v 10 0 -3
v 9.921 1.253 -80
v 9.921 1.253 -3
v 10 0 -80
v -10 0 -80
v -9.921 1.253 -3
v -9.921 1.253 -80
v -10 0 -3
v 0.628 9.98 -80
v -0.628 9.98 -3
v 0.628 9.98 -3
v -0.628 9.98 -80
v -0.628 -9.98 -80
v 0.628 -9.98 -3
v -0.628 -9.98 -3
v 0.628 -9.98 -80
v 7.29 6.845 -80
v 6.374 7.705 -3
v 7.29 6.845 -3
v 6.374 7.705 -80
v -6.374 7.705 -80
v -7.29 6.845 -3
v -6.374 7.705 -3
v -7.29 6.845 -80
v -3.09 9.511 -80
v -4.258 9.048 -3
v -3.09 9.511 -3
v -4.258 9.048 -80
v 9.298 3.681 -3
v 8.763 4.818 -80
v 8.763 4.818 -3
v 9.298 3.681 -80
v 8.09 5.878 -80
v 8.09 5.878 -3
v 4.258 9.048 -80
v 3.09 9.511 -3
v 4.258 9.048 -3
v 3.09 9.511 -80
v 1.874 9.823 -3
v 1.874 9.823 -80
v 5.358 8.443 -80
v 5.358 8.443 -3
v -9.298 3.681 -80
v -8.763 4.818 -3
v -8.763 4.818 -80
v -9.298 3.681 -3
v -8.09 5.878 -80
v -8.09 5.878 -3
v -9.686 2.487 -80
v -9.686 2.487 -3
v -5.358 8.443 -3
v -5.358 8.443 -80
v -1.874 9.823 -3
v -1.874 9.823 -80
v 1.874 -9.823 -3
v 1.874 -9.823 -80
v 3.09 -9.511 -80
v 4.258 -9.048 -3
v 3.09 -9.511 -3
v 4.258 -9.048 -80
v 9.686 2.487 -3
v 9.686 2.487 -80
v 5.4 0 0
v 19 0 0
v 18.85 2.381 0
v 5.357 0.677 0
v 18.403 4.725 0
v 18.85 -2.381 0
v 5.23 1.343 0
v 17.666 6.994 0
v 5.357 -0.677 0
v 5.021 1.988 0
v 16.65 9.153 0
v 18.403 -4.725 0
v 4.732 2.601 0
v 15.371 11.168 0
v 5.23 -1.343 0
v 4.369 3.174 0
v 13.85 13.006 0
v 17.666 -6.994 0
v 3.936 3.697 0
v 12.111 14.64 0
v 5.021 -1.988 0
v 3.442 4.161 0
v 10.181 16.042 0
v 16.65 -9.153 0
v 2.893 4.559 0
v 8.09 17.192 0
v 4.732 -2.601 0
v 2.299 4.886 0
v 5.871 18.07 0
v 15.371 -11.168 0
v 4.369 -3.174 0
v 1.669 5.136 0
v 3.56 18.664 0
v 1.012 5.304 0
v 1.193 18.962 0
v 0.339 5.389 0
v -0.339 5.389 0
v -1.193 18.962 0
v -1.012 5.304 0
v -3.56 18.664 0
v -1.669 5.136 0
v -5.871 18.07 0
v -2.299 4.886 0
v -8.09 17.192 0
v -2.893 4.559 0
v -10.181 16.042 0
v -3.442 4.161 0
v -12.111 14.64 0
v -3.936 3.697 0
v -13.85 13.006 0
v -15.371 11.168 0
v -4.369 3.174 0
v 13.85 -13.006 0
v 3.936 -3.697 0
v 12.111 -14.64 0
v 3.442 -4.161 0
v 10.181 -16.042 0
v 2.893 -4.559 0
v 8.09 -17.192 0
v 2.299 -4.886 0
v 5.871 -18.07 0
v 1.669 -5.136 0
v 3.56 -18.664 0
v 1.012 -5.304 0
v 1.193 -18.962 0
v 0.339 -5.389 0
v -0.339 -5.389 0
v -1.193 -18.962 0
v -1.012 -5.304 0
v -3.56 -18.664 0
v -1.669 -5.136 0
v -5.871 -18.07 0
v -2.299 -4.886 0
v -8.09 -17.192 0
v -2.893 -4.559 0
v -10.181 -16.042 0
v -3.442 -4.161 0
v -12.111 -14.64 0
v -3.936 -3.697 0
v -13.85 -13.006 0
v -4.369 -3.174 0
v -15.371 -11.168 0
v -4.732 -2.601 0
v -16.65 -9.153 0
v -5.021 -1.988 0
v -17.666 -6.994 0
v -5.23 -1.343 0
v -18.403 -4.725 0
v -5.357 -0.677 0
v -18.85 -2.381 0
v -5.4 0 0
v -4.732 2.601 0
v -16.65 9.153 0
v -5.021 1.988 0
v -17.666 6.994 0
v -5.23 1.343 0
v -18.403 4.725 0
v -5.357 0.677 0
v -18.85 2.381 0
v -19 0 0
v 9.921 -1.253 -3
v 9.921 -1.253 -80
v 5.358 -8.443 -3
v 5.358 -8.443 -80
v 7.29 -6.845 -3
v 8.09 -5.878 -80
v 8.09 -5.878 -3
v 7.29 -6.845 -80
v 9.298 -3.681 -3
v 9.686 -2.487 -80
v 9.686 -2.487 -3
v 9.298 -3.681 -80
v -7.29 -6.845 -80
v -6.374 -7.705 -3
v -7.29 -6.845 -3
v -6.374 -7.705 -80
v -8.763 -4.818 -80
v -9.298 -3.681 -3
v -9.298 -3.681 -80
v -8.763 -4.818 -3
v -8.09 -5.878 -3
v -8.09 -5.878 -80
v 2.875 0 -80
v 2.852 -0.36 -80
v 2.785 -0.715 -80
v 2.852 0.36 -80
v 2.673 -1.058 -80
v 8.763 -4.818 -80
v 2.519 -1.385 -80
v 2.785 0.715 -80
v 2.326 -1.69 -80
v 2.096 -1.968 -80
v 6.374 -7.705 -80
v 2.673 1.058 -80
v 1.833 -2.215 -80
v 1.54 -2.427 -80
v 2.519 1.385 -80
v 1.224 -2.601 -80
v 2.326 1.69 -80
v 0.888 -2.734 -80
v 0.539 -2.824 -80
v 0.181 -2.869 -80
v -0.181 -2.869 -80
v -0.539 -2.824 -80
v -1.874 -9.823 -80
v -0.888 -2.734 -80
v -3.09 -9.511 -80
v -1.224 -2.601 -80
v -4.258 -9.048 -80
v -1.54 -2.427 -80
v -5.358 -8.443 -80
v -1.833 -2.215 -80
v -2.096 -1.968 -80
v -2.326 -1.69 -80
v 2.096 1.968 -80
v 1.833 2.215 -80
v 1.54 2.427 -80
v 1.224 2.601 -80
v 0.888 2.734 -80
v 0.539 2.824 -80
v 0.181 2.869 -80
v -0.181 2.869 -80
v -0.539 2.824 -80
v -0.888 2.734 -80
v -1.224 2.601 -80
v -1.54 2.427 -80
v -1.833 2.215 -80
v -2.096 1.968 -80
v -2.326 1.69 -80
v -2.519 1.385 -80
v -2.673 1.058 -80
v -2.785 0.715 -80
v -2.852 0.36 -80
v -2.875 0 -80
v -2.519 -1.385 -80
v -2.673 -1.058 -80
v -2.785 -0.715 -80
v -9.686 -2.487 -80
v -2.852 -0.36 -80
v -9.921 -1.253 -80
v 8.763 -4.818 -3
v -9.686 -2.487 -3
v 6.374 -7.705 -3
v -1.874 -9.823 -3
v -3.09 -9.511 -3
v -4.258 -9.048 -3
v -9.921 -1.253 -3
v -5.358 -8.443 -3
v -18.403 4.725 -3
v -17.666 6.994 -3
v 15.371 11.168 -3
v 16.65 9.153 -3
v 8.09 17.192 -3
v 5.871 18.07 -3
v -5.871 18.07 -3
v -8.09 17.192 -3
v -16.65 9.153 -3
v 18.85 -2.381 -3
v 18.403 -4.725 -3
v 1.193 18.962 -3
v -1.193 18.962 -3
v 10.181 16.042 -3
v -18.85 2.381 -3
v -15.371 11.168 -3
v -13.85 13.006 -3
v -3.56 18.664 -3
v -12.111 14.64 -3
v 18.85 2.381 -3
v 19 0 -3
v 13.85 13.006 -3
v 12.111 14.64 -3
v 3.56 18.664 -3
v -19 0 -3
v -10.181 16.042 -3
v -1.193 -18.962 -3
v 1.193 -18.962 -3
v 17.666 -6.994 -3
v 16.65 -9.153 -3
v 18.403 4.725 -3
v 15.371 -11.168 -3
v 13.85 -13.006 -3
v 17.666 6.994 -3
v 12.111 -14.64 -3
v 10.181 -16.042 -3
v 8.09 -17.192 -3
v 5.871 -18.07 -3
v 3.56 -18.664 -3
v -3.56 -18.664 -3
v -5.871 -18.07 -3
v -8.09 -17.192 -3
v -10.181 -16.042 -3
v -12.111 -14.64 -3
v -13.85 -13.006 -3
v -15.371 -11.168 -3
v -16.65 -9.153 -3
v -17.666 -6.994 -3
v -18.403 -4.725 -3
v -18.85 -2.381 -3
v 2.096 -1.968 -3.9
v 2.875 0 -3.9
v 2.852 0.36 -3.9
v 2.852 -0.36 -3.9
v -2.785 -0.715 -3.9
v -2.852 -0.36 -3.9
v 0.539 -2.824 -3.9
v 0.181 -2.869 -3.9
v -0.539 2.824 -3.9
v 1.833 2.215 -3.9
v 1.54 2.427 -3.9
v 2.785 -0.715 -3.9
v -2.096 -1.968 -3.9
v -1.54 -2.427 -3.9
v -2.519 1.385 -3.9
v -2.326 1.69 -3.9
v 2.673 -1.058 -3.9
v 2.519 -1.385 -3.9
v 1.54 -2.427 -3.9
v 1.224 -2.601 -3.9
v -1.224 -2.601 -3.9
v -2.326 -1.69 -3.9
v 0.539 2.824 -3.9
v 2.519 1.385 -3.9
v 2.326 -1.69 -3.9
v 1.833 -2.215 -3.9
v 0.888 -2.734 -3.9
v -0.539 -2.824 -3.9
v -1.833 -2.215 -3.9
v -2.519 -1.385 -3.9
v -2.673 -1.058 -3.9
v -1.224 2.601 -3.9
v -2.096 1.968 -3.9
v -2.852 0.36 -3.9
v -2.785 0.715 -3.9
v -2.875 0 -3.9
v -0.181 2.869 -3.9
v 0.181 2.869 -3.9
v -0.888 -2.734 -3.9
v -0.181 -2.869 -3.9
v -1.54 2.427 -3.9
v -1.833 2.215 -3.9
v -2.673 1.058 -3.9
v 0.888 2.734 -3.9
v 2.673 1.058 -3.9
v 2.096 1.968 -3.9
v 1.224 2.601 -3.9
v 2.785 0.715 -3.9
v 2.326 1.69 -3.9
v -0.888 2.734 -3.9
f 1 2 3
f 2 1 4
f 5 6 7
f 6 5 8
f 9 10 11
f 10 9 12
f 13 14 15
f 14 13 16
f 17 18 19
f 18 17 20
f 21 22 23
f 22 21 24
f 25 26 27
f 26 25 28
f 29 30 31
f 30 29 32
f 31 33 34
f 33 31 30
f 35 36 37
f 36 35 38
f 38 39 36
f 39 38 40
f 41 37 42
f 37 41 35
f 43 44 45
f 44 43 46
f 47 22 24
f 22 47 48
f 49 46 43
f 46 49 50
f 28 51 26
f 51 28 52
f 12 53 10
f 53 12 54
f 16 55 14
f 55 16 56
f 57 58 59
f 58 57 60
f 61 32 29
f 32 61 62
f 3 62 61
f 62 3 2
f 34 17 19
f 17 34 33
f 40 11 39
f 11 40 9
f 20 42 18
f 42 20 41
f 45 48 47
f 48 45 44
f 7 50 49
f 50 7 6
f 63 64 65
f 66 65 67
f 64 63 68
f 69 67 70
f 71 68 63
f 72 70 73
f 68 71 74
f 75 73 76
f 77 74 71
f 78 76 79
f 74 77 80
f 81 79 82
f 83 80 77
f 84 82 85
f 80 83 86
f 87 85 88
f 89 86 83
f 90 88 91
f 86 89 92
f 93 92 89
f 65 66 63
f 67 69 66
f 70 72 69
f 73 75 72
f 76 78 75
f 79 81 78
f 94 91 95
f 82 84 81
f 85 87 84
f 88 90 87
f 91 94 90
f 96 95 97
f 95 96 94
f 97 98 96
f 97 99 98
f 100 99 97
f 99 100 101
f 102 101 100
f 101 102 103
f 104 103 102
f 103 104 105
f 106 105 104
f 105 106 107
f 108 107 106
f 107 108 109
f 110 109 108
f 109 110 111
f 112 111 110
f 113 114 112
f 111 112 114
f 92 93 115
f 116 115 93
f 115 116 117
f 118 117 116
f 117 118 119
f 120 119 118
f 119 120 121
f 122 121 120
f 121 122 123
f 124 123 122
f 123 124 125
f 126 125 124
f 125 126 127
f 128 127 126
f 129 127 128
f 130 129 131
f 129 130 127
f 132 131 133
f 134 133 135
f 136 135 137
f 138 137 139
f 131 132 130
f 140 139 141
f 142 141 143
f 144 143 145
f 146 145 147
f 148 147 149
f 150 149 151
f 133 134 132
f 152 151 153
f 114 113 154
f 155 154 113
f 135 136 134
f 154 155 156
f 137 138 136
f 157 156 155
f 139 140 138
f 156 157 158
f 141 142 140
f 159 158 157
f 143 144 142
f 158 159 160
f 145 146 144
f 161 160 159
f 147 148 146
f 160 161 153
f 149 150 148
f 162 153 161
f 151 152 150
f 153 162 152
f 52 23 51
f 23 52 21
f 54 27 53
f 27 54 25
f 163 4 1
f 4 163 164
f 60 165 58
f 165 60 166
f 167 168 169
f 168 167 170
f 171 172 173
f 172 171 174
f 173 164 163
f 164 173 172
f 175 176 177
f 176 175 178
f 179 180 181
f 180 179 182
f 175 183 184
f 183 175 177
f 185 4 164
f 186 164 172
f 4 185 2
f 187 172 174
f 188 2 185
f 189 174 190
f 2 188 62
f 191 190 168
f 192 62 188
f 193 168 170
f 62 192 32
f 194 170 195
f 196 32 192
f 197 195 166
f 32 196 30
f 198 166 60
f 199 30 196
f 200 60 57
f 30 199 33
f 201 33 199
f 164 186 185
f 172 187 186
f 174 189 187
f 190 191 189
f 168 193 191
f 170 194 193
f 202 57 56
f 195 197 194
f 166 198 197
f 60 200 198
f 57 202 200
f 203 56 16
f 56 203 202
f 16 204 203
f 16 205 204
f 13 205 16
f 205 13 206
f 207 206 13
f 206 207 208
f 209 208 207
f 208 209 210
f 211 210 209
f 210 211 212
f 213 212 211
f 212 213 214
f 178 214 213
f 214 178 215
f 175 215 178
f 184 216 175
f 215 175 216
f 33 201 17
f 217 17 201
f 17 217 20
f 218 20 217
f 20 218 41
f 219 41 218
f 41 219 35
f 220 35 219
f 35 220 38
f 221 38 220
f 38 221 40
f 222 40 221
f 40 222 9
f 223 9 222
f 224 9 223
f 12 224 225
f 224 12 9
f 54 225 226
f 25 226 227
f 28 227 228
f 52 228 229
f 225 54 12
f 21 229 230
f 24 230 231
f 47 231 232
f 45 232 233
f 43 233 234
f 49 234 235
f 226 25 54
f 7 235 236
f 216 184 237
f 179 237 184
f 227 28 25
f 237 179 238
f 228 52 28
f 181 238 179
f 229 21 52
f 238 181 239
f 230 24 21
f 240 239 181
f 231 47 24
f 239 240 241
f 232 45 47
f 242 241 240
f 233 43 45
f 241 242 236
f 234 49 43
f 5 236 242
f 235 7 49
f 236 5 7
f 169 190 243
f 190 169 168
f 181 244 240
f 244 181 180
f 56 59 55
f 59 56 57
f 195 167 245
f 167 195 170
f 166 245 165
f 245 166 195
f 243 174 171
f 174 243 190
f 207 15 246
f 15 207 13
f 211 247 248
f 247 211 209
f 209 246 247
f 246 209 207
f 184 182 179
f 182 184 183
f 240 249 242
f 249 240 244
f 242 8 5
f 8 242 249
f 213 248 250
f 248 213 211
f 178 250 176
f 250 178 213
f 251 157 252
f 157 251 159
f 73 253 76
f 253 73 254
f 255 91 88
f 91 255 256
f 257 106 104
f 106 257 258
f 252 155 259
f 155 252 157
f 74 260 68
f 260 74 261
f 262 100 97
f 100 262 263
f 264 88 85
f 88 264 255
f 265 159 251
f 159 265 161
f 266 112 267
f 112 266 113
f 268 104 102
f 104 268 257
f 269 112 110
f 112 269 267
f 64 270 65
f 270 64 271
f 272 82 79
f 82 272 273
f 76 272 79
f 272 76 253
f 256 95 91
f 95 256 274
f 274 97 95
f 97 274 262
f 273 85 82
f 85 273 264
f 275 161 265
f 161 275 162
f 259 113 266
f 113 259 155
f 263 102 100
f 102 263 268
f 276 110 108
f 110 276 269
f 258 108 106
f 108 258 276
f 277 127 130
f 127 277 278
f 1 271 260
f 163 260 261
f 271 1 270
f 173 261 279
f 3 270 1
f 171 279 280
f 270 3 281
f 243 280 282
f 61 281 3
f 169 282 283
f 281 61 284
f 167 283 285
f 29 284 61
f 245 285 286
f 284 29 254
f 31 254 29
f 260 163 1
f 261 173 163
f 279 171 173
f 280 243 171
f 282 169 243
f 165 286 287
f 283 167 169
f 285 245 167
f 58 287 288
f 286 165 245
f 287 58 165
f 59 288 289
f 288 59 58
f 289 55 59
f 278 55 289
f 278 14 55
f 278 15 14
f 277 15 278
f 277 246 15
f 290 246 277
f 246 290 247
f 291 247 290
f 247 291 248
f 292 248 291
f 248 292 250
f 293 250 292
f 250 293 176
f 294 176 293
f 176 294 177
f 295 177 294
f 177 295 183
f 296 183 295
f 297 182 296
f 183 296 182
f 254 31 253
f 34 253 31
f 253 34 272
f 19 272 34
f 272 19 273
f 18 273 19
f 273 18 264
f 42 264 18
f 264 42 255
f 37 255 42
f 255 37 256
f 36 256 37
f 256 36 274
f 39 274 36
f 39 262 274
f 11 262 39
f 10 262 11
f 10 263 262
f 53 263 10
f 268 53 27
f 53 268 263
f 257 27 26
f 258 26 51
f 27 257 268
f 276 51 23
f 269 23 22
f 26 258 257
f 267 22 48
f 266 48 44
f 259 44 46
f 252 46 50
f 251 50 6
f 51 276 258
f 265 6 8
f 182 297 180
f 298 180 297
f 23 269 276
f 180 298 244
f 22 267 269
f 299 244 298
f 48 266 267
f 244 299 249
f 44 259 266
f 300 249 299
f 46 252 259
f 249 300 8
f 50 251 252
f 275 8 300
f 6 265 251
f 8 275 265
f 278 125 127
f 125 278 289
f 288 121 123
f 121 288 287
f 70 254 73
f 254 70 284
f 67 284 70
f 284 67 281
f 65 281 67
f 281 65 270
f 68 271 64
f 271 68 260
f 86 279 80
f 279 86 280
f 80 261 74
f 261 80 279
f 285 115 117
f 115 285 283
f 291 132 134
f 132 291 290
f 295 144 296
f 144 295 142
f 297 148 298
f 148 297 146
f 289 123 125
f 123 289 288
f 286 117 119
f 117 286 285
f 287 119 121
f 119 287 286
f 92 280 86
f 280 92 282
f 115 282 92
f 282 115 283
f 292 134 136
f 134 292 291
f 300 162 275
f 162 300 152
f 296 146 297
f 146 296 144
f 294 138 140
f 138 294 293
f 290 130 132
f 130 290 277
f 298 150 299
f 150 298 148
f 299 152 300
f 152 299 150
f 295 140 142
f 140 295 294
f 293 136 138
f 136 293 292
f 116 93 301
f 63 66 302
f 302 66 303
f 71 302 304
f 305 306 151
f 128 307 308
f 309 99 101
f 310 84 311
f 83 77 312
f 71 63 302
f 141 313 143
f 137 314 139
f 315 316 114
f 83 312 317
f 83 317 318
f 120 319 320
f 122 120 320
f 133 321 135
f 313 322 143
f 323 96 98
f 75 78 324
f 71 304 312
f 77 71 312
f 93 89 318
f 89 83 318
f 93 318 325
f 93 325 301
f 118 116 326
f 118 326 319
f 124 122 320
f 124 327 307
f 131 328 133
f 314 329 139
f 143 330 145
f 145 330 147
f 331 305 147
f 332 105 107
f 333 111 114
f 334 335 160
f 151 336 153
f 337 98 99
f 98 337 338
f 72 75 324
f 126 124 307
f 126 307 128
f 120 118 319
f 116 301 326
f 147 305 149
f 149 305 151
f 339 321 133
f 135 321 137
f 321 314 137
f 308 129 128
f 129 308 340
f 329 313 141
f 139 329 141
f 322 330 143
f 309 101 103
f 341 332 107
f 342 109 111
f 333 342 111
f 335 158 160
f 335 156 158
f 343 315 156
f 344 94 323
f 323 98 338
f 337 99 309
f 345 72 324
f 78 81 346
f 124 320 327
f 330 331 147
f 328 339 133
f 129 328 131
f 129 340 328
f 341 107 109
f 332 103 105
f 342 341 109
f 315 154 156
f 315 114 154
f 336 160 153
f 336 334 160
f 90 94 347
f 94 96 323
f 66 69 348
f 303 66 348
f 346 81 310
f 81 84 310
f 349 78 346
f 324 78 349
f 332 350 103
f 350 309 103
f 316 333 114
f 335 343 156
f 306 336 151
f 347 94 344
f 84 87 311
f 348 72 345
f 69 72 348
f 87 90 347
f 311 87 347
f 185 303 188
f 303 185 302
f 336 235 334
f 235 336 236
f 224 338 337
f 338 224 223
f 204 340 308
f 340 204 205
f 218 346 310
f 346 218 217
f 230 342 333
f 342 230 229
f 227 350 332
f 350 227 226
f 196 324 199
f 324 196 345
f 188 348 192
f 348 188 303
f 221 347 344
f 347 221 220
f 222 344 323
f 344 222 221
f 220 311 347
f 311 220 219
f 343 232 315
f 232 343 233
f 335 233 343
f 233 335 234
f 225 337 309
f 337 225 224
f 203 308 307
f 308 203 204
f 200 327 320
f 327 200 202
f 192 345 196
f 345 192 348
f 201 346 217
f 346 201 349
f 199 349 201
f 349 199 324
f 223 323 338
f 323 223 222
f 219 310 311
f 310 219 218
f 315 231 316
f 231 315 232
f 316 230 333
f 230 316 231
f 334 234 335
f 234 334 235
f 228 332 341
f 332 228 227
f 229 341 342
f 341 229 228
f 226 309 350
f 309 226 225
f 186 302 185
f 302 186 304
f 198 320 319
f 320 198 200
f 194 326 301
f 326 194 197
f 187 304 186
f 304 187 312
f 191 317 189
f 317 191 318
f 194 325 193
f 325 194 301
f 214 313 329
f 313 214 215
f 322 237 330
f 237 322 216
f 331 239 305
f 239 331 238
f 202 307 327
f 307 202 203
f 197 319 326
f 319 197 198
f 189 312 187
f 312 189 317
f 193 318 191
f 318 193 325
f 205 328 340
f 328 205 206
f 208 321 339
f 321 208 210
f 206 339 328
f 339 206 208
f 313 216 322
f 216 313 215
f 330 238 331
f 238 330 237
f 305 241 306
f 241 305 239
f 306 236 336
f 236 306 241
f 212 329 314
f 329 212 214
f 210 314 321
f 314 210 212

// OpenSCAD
$fn = 50;


difference() {
	union() {
		translate(v = [0, 0, -80.0000000000]) {
			cylinder(h = 80, r = 10.0000000000);
		}
		translate(v = [0, 0, -3.0000000000]) {
			cylinder(h = 3, r = 19.0000000000);
		}
	}
	union() {
		translate(v = [0, 0, 0]) {
			rotate(a = [0, 0, 0]) {
				difference() {
					union() {
						#translate(v = [0, 0, -80.0000000000]) {
							cylinder(h = 80, r = 2.6000000000);
						}
						#translate(v = [0, 0, -3.9000000000]) {
							cylinder(h = 3.9000000000, r = 10.0000000000, r1 = 2.8750000000, r2 = 5.4000000000);
						}
						#translate(v = [0, 0, -80.0000000000]) {
							cylinder(h = 80, r = 2.8750000000);
						}
						#translate(v = [0, 0, -80.0000000000]) {
							cylinder(h = 80, r = 2.6000000000);
						}
					}
					union();
				}
			}
		}
	}
}
